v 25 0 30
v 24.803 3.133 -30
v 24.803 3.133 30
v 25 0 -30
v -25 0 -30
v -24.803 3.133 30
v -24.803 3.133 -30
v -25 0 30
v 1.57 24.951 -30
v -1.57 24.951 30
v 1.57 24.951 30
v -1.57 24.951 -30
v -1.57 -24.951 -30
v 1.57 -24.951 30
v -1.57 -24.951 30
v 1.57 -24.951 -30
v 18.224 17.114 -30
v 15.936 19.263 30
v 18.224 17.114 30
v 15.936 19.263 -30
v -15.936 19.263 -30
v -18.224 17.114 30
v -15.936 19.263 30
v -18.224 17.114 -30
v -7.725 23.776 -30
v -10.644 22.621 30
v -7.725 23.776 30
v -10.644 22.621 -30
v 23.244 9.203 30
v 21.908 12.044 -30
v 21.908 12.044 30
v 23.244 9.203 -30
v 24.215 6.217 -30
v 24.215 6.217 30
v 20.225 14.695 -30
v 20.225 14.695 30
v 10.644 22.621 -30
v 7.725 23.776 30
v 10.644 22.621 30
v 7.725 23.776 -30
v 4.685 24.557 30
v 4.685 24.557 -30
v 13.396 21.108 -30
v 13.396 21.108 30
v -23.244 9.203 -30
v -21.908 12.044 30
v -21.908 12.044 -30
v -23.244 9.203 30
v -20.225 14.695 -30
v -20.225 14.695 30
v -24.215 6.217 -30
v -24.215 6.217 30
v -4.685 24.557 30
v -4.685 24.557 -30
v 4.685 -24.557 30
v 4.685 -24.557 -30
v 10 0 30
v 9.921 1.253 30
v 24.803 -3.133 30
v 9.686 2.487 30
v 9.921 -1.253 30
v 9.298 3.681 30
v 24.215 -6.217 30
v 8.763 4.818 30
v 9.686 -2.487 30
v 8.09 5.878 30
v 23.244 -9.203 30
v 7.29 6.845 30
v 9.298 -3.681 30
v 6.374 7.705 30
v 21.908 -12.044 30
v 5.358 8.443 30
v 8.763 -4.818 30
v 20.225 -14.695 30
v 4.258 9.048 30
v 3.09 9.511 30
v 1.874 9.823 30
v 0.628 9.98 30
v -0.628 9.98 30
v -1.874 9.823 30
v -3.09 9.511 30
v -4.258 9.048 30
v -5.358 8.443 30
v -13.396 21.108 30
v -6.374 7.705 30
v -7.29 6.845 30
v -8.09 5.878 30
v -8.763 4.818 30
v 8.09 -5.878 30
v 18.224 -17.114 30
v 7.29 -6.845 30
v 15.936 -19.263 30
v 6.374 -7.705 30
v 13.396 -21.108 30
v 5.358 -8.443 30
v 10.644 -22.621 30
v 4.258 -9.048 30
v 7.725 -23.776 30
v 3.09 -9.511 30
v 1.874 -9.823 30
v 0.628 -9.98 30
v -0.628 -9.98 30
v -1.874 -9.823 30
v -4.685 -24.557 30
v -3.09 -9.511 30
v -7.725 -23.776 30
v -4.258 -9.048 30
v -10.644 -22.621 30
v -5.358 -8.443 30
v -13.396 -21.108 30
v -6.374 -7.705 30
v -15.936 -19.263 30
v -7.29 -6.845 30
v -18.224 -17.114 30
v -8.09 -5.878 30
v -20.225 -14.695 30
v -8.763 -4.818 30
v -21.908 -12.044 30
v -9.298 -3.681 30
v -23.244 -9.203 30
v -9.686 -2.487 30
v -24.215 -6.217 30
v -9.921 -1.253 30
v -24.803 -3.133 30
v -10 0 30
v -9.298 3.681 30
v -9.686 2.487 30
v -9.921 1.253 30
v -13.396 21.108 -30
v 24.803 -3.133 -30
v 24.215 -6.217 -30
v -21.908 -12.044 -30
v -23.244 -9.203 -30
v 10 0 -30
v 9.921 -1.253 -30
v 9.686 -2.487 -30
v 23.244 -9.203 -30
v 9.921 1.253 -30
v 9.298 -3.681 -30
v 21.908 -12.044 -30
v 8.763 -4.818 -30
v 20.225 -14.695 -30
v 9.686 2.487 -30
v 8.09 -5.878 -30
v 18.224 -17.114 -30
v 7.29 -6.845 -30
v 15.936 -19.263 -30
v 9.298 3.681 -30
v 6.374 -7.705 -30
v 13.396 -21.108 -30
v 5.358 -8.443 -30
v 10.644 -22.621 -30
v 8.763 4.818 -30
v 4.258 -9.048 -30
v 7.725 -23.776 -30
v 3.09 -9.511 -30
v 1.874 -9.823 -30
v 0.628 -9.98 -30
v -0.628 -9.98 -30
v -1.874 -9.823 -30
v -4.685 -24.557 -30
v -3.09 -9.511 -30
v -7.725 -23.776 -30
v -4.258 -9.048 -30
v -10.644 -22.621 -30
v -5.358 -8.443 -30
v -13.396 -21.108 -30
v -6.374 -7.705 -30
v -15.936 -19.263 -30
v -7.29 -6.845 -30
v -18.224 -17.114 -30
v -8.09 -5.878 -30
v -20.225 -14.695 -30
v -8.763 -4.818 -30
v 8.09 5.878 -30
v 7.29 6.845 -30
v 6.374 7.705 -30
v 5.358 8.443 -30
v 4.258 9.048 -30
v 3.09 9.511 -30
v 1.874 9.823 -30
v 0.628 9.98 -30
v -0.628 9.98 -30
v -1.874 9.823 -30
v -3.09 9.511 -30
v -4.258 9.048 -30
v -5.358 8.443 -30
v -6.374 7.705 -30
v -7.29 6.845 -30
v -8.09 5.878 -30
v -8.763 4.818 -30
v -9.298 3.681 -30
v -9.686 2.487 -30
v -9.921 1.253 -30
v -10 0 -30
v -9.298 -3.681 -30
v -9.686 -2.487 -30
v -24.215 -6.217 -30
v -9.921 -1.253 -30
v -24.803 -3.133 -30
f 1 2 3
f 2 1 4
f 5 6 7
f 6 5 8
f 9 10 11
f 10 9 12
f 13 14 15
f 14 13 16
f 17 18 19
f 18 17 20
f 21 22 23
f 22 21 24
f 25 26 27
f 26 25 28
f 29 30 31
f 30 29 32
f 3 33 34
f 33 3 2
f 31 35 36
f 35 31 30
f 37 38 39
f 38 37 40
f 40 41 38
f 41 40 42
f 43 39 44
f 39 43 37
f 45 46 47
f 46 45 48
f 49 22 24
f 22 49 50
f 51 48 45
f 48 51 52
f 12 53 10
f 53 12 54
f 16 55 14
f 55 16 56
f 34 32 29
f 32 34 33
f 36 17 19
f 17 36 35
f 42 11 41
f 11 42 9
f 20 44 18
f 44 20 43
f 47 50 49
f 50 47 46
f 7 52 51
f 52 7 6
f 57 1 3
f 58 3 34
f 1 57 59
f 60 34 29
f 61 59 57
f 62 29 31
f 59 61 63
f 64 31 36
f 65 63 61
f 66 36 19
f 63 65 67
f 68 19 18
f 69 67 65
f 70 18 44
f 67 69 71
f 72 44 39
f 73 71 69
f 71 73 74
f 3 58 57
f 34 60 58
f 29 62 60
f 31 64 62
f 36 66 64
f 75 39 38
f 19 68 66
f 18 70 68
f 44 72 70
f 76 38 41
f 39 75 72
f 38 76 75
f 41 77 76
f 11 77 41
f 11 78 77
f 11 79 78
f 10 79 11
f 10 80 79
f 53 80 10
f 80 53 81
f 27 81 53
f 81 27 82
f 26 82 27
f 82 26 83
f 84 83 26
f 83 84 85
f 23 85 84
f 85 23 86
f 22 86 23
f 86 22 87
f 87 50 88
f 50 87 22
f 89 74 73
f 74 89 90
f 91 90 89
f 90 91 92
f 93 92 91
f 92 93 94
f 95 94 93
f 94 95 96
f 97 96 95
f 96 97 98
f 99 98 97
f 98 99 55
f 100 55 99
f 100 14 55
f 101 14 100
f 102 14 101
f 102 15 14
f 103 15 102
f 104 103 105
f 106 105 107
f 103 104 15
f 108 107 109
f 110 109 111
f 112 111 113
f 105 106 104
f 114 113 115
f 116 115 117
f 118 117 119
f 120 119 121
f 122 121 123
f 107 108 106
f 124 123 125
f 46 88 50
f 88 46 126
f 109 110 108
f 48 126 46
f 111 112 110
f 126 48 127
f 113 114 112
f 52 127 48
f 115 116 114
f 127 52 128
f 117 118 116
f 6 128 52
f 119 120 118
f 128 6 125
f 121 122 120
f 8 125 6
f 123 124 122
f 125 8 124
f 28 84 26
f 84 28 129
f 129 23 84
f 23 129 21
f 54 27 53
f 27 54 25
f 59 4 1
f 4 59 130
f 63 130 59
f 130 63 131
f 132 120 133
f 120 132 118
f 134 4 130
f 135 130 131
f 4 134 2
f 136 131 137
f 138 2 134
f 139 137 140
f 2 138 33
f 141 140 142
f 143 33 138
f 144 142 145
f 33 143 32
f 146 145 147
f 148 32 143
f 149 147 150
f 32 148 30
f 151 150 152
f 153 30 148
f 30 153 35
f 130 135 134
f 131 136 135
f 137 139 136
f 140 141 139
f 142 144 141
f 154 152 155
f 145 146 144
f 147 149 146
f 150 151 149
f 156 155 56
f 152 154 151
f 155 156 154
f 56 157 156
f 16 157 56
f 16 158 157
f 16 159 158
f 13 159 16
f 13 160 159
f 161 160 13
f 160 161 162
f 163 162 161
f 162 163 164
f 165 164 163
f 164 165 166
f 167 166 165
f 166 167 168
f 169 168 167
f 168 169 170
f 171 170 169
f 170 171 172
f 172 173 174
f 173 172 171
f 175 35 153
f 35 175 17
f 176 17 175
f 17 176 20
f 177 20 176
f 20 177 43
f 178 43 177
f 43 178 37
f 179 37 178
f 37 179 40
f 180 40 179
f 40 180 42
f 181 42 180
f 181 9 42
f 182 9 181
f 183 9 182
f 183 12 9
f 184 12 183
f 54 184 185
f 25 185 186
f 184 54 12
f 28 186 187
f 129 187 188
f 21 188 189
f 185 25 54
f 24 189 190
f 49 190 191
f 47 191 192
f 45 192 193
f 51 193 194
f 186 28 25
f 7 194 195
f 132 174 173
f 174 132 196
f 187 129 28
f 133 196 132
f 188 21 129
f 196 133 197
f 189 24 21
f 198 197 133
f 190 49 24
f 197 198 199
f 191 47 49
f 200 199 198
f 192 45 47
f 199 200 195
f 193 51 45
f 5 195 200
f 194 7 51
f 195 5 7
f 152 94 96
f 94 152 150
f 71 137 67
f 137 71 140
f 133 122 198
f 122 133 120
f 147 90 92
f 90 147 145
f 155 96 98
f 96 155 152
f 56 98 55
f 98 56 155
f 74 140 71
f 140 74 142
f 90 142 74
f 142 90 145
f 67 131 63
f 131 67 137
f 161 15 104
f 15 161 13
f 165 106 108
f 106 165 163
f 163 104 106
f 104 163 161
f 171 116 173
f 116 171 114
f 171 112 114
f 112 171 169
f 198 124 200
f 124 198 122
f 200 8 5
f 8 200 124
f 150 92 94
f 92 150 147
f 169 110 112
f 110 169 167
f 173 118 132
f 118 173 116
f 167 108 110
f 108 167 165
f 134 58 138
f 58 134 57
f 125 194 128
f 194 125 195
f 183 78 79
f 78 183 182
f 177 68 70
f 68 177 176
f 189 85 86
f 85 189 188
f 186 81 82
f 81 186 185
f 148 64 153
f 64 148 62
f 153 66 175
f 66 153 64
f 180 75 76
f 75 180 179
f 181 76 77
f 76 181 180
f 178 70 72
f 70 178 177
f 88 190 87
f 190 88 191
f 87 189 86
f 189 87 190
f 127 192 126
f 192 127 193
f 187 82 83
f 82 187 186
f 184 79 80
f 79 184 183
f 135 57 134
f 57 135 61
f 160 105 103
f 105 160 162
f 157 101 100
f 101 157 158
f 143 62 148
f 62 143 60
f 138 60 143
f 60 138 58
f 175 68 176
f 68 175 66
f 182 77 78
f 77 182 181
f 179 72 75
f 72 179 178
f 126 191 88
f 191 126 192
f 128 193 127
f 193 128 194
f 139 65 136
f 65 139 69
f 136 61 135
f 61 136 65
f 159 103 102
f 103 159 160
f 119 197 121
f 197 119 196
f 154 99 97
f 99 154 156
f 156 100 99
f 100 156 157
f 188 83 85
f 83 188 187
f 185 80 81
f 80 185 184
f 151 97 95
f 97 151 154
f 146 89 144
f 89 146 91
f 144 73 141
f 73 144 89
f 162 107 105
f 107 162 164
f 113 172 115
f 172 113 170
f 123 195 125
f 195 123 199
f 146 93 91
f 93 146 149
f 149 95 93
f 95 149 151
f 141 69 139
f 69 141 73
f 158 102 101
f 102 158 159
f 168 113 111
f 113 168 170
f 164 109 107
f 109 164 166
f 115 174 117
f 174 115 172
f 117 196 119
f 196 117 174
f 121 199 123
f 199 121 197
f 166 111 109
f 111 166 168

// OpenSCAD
$fn = 50;


difference() {
	union() {
		translate(v = [0, 0, -30.0000000000]) {
			cylinder(h = 60, r = 25.0000000000);
		}
	}
	union() {
		translate(v = [0, 0, -100.0000000000]) {
			cylinder(h = 200, r = 10);
		}
	}
}
